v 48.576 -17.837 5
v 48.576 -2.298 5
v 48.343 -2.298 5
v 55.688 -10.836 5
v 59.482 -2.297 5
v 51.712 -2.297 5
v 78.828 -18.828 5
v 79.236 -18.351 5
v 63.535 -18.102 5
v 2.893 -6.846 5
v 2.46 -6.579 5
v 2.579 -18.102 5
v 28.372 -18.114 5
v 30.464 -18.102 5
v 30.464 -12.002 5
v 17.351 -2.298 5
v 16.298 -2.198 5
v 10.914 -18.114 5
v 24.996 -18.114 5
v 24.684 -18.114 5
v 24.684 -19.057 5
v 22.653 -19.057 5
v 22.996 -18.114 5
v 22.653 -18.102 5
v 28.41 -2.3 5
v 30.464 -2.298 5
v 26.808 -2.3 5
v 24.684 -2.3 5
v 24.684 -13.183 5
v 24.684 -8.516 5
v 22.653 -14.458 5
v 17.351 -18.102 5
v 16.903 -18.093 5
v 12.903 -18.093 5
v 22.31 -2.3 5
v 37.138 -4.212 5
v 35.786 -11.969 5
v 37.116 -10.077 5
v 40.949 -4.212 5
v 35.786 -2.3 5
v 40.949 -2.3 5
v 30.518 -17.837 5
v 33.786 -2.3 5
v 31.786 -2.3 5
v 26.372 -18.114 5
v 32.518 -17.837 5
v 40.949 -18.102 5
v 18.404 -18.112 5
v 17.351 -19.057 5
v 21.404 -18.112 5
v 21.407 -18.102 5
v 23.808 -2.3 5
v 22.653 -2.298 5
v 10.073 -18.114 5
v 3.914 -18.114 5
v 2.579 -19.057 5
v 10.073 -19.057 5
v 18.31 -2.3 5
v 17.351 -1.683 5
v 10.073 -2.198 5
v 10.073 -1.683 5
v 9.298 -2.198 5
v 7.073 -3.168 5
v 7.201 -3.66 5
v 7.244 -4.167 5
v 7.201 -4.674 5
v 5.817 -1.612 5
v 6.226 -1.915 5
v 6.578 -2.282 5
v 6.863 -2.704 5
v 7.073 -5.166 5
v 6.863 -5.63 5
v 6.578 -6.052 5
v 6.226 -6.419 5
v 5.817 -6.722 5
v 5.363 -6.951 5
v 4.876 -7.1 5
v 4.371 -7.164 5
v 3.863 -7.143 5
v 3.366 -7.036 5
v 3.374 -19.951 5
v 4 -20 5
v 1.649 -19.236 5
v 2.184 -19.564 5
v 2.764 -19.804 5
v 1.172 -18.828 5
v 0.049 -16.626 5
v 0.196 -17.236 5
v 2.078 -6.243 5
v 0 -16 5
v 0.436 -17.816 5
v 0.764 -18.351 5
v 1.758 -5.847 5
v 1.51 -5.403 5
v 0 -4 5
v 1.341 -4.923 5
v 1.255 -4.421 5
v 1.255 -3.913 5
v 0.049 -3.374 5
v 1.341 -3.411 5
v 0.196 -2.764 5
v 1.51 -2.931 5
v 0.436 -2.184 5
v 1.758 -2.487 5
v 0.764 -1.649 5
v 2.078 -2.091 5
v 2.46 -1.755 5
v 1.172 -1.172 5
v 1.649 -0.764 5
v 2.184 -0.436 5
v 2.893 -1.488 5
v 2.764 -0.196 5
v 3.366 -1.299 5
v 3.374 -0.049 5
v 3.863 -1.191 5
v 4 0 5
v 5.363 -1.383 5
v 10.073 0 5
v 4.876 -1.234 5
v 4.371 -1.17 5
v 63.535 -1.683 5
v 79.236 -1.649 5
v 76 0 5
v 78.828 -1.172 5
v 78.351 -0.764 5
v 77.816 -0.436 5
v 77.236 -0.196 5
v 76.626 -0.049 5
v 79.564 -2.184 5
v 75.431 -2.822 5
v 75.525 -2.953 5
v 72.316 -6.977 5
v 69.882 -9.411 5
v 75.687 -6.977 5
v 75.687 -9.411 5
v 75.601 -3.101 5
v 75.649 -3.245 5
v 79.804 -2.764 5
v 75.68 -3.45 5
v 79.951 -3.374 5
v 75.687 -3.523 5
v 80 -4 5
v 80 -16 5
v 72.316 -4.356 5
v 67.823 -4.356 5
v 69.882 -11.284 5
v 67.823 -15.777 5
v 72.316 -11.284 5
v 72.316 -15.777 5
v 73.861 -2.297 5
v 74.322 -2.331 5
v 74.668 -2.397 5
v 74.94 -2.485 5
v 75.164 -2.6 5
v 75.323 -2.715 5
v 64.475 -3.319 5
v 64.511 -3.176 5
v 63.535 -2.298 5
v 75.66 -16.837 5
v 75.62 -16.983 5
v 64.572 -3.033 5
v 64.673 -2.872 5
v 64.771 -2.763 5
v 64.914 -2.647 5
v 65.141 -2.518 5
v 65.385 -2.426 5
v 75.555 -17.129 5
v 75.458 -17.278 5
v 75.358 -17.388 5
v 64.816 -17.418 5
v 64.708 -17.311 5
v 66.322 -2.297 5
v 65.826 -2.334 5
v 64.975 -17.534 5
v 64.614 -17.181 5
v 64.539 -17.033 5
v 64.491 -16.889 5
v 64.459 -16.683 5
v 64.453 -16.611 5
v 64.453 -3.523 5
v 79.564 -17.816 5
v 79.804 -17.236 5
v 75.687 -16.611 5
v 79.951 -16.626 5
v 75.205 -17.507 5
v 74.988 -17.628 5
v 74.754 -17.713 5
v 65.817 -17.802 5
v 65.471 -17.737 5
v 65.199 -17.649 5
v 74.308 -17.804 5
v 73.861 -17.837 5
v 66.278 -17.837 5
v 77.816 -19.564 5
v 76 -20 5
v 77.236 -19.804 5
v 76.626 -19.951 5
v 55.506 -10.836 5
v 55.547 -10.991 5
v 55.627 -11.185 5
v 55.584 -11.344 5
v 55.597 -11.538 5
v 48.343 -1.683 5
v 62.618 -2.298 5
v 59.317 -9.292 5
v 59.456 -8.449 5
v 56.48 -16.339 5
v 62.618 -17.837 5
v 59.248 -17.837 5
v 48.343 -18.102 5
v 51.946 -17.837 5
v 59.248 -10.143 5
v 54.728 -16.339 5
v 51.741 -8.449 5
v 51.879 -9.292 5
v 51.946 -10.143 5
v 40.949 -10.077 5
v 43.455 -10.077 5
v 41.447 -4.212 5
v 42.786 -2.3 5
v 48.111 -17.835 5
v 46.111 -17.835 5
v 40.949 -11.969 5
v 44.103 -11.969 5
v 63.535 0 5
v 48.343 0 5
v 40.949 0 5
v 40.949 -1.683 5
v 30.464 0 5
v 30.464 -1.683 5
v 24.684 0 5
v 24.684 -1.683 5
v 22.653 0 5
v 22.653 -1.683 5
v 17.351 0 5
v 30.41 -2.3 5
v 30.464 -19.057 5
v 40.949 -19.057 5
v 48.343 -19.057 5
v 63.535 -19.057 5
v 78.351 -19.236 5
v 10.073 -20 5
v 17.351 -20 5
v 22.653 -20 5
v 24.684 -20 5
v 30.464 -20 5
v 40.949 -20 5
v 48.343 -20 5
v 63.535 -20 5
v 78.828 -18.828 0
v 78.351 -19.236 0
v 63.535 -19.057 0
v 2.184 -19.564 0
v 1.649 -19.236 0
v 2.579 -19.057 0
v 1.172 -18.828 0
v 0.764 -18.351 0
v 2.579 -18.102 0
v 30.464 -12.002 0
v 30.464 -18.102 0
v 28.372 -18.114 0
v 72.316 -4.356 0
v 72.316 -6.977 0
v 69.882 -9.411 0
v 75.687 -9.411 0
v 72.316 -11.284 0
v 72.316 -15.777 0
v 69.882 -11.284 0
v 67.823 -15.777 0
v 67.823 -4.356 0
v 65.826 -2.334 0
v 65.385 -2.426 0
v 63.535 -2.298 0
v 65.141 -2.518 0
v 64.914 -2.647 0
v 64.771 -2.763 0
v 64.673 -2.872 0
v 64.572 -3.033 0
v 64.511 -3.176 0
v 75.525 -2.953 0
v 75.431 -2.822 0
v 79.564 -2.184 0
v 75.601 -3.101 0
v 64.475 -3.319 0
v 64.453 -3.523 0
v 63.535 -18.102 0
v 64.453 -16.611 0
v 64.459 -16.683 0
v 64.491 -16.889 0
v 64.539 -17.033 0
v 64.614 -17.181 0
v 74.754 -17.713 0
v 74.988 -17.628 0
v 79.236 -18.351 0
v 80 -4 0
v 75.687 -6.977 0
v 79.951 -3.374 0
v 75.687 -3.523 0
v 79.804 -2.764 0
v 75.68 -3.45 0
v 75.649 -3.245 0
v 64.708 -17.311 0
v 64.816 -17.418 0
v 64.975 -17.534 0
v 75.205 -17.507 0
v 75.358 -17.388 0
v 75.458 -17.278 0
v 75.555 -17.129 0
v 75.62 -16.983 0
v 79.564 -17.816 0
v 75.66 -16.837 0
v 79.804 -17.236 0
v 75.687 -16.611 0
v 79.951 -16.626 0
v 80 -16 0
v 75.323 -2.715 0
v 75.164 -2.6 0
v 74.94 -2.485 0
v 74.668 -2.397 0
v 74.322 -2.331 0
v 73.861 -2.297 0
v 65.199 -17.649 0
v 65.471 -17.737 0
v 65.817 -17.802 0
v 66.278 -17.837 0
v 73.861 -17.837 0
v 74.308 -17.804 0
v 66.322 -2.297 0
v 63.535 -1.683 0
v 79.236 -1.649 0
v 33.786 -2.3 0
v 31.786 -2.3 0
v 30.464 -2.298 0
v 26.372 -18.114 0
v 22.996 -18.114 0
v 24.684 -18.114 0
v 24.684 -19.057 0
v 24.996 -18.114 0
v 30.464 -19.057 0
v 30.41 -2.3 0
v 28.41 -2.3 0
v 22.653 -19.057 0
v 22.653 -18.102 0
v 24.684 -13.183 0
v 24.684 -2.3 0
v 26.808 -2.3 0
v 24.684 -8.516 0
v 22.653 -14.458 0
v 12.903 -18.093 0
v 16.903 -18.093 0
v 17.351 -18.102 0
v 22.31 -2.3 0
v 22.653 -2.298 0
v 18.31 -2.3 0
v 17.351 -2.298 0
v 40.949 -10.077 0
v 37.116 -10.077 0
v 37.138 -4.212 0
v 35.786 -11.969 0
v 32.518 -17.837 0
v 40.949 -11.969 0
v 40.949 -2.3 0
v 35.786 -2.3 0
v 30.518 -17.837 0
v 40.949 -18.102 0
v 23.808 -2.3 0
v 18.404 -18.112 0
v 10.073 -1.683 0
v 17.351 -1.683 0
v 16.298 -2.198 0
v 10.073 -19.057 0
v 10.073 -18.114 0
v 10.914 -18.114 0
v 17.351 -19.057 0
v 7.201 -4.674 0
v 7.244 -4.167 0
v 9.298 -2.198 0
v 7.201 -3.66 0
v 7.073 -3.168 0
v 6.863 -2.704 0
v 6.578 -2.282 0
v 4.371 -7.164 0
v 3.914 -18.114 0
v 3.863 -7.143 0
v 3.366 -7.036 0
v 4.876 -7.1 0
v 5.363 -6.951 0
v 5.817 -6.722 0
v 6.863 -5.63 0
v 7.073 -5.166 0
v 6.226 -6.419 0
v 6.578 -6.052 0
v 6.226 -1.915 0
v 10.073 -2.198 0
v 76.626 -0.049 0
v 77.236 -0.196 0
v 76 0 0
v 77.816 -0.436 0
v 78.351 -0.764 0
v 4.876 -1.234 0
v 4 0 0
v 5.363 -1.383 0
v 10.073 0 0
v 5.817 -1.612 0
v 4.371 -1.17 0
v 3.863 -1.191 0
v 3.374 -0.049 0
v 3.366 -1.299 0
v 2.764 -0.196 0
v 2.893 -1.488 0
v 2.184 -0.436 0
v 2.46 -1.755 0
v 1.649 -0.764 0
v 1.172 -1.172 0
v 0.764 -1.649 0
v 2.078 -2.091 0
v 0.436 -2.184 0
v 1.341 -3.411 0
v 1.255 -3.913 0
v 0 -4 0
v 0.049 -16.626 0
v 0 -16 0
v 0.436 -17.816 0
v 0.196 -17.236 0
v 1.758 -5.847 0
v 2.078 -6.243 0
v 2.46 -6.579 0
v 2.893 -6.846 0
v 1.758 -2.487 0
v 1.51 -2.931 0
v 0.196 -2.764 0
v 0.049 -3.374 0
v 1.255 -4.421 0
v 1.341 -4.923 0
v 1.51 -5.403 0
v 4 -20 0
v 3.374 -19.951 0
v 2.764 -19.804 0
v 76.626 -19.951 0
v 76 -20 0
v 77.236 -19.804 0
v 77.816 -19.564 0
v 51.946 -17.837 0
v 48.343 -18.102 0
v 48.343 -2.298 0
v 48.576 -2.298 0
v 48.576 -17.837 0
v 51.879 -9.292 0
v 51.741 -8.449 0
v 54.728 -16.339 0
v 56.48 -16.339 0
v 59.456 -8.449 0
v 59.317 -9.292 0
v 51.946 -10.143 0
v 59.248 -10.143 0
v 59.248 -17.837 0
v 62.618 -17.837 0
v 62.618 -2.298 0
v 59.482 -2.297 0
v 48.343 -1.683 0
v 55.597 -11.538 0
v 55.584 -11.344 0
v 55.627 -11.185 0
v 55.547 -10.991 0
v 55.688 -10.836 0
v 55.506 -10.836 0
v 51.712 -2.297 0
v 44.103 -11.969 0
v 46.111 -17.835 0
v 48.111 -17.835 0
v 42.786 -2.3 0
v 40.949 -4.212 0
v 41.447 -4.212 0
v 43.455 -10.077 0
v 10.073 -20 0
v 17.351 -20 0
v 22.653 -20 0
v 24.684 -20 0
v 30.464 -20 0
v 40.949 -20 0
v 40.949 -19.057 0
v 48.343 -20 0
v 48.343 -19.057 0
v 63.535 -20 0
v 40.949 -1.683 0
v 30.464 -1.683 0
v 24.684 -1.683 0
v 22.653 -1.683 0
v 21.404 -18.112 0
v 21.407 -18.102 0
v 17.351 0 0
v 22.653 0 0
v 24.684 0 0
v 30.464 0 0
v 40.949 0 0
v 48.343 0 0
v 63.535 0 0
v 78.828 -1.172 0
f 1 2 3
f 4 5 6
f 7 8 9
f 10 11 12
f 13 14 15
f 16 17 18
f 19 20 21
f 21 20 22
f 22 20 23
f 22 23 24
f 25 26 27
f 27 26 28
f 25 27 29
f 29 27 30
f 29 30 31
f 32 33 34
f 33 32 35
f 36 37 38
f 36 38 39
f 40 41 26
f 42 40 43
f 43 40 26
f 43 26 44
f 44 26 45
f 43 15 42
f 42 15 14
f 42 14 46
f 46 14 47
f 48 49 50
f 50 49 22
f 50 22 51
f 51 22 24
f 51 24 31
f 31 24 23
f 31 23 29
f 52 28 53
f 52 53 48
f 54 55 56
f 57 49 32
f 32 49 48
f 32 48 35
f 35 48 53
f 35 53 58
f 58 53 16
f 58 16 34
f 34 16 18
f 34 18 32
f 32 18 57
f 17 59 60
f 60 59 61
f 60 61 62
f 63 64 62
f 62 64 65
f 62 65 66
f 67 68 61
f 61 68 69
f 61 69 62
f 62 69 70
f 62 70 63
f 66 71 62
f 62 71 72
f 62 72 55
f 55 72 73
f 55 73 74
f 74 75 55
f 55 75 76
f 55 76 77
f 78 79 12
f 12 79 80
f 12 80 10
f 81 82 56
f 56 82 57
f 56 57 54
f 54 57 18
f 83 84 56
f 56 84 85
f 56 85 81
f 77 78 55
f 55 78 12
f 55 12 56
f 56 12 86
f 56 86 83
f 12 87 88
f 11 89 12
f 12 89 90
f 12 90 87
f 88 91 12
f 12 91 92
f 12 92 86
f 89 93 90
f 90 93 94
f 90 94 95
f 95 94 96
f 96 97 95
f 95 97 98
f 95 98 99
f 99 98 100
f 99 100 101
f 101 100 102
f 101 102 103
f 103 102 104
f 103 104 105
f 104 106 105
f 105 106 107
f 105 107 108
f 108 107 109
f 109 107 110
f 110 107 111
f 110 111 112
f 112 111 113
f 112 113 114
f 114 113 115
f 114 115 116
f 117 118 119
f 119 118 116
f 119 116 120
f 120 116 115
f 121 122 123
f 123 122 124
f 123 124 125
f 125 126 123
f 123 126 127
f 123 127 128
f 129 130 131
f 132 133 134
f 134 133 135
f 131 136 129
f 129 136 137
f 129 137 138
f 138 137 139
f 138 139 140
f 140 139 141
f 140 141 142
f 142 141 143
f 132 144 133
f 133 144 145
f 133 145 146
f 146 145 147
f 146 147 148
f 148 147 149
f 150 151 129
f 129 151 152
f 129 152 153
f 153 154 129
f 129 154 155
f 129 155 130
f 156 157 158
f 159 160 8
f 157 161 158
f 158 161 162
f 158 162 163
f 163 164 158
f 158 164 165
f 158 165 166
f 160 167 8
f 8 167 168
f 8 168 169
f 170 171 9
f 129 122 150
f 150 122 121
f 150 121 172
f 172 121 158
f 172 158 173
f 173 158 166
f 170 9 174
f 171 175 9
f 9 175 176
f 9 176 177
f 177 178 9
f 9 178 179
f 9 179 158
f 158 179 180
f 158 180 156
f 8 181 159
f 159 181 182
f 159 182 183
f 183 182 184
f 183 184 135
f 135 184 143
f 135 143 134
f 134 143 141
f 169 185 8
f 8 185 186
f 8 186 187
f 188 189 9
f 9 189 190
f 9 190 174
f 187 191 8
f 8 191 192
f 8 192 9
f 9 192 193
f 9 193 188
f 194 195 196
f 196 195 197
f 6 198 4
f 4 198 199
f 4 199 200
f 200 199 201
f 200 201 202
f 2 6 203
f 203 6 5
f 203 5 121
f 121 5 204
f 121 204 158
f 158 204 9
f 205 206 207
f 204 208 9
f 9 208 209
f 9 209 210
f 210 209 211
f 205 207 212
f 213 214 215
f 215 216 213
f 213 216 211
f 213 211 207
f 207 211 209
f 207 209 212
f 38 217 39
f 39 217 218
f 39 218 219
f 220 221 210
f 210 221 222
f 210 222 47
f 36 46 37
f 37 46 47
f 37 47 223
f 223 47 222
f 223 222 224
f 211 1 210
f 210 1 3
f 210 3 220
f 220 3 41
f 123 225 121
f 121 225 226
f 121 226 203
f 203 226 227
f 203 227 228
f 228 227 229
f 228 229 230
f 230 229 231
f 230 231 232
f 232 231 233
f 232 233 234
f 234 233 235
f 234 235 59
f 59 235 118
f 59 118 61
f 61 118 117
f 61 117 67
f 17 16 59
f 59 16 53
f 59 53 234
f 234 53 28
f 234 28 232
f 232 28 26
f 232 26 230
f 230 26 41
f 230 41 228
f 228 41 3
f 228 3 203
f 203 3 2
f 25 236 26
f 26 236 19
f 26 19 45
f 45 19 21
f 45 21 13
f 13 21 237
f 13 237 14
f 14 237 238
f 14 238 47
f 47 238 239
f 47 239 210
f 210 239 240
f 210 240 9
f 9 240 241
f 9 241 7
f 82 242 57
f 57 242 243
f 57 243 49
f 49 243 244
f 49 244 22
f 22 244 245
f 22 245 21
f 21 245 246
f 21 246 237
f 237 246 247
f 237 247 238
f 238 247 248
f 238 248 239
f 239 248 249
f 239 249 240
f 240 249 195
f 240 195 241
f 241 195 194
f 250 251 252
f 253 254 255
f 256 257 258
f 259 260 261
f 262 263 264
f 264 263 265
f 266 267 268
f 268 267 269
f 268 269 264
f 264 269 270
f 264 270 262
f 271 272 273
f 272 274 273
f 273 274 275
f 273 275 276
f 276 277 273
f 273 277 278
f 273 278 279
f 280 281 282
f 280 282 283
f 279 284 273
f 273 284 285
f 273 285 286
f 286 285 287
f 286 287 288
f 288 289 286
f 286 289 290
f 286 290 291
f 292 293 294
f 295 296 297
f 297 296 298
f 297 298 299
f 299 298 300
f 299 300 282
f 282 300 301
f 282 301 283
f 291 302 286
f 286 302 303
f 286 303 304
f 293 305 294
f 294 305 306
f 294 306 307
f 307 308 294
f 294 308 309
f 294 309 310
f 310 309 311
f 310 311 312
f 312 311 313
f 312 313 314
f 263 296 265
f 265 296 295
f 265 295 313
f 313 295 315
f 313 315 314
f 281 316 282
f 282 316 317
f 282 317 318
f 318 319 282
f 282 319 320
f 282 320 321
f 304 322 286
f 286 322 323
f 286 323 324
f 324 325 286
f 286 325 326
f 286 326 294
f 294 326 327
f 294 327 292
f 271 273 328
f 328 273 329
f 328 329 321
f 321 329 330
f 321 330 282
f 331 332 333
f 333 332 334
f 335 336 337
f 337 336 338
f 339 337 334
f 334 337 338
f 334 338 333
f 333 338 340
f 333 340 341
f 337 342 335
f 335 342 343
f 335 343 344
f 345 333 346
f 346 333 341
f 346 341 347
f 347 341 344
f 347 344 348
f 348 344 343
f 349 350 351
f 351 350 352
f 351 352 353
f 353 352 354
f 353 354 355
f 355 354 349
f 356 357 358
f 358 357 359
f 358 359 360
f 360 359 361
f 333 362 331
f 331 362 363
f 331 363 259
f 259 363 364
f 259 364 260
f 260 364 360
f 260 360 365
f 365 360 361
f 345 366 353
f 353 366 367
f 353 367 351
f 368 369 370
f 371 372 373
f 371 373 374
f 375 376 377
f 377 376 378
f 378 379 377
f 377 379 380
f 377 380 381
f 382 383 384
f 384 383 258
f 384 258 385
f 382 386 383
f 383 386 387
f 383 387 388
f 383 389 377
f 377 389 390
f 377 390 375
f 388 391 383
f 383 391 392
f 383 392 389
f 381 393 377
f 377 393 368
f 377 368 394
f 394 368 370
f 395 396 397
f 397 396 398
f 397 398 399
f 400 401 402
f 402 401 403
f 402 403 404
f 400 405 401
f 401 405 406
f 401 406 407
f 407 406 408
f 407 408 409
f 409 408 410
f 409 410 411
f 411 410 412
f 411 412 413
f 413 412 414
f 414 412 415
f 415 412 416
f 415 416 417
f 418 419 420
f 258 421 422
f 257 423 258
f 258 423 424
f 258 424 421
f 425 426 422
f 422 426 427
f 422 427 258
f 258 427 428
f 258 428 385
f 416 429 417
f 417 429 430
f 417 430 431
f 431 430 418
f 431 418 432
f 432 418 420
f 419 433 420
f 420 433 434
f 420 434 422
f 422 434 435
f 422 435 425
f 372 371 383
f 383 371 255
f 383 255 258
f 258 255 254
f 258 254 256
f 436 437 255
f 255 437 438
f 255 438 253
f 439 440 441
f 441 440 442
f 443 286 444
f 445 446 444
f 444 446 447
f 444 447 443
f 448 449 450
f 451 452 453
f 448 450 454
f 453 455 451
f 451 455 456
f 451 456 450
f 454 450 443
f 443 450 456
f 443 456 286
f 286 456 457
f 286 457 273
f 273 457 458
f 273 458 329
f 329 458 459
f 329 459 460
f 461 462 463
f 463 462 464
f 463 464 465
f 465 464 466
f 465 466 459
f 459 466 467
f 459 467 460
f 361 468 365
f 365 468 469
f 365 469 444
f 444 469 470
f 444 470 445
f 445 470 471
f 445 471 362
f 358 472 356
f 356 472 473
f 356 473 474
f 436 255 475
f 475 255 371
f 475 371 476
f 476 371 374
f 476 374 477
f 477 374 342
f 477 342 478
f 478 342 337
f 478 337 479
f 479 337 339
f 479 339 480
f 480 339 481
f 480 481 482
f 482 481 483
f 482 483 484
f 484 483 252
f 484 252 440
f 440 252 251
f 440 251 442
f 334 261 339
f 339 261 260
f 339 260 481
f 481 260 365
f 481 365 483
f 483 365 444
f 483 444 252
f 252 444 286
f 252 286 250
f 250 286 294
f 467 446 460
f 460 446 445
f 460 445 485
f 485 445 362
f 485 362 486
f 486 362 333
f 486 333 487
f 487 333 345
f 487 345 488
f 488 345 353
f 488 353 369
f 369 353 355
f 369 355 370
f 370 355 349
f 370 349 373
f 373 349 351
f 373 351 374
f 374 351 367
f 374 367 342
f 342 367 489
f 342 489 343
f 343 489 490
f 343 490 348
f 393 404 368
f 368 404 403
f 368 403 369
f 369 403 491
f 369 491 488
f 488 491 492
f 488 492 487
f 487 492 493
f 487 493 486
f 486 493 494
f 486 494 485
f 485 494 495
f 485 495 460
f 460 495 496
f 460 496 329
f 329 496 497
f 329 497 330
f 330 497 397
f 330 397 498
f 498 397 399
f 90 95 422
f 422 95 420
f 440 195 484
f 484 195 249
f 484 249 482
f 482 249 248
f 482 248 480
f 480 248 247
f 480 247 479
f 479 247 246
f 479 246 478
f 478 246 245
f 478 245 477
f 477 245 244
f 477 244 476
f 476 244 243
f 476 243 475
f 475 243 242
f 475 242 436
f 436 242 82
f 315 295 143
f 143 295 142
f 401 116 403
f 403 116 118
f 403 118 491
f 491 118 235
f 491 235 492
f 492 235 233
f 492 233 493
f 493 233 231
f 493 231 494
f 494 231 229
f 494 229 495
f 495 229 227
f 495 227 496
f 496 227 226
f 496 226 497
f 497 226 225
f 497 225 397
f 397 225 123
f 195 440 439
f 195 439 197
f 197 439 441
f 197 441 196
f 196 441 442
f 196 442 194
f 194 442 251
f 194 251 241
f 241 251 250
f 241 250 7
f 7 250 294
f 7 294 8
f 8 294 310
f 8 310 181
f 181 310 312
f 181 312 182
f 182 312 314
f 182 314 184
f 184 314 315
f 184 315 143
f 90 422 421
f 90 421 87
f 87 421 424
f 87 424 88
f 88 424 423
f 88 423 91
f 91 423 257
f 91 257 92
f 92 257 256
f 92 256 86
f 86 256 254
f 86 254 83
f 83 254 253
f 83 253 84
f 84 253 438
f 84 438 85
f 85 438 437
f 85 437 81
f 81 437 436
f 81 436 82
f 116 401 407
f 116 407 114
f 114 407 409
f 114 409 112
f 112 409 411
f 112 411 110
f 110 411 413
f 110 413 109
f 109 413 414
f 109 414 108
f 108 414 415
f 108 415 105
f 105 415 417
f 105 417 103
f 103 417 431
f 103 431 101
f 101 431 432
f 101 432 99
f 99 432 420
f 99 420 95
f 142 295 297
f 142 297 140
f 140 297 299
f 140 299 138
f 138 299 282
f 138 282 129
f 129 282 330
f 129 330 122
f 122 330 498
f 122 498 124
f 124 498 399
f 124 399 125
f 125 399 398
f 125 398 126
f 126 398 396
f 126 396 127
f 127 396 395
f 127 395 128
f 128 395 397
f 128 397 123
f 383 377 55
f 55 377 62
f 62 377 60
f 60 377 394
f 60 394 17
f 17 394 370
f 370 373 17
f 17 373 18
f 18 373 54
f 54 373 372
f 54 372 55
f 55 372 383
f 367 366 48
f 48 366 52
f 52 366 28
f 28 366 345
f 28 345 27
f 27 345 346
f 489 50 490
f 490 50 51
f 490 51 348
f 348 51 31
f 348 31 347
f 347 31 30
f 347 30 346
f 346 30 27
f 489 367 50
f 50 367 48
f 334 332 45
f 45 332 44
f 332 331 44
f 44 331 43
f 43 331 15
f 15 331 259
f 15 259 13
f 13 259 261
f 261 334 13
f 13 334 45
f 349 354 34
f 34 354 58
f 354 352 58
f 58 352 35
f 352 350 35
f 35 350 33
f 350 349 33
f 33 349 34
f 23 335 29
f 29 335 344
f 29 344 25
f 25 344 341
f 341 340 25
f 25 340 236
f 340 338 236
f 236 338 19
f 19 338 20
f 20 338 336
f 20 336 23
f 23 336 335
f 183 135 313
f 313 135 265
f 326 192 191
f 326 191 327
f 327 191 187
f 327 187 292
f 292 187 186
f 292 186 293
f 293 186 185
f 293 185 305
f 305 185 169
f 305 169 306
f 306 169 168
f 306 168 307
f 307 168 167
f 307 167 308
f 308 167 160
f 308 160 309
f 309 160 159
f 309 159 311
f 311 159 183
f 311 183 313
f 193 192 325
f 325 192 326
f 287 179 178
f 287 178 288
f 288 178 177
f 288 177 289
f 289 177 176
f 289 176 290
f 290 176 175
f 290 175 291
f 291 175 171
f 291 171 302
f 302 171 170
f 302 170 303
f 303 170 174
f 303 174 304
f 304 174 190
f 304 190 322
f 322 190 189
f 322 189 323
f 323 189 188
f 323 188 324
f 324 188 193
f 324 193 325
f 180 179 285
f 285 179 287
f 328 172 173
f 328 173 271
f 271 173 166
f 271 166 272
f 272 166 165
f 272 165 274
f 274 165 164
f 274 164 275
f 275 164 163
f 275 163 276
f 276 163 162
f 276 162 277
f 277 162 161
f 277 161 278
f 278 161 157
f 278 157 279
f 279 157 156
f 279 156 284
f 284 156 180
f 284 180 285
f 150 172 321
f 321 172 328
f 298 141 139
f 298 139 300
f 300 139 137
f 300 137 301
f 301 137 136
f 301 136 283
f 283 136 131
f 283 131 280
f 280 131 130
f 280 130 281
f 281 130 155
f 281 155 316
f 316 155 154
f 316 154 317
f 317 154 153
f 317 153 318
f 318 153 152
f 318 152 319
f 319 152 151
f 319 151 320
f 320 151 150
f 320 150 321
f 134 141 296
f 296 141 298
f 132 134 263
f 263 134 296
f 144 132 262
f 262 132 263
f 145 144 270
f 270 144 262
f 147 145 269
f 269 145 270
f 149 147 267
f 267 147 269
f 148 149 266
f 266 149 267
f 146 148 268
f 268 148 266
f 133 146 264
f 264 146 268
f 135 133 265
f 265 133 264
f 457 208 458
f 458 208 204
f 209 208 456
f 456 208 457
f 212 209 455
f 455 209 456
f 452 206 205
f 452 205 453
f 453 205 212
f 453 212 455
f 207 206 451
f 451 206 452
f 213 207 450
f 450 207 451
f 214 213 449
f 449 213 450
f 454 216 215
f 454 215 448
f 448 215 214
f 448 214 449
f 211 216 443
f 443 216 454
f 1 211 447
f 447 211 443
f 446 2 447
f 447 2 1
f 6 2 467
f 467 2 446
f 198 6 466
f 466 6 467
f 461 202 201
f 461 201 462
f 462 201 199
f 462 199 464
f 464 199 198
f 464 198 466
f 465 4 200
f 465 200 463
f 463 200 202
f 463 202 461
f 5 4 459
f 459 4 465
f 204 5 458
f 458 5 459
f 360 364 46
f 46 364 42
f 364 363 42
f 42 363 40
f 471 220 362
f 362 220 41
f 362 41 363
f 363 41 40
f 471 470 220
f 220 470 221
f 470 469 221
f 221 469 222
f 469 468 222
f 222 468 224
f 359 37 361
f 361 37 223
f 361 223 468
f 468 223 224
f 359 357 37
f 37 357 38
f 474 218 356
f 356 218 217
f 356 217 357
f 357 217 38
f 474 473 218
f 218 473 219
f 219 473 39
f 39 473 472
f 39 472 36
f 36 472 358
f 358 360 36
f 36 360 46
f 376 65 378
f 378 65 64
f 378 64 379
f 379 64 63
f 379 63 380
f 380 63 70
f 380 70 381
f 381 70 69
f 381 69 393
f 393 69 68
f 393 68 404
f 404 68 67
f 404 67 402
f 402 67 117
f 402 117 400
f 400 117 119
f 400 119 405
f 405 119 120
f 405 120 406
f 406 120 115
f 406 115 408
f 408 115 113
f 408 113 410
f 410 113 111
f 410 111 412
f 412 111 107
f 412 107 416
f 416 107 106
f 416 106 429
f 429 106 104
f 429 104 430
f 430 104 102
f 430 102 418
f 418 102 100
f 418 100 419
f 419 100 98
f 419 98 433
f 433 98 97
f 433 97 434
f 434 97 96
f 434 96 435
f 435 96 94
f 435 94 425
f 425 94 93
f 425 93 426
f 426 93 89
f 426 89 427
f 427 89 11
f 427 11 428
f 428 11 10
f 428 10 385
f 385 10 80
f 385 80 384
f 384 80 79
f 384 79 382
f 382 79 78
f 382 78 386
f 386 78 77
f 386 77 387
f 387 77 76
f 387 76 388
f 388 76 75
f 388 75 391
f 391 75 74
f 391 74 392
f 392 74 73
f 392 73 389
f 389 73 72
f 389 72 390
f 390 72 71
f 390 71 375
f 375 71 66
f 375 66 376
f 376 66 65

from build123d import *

# Parameters (mm, degrees)
ESQUISSE1_W                  = 80
ESQUISSE1_H                  = 20
BOSS_EXTRU_1_DEPTH           = 5
CONG_1_R                     = 4
ENL_V_MAT_EXTRU_1_DEPTH      = 83.613558209
ENL_V_START                  = -5
ENL_V_MAT_EXTRU_2_DEPTH      = 5
ESQUISSE11_W                 = 13.611032385
ESQUISSE11_H                 = 17.64061434
BOSS_EXTRU_8_DEPTH           = 5
ENL_V_MAT_EXTRU_3_DEPTH      = 83.613558336
ENL_V_MAT_EXTRU_3_DEPTH_BACK = 83.613558336
ESQUISSE13_R                 = 3
ENL_V_MAT_EXTRU_4_DEPTH      = 33


# Read off the part's stored shape, not the designer's step: Enlèv. mat.-Extru.2
with BuildPart() as part:
    # Esquisse1 → Boss.-Extru.1 (new body)
    with BuildSketch(Plane.XY):
        with Locations((40, -10)):
            Rectangle(ESQUISSE1_W, ESQUISSE1_H)
    extrude(amount=BOSS_EXTRU_1_DEPTH)

    # Congé1
    cong_1_edges = [part.edges().sort_by_distance(p)[0] for p in [
        (0, 0, 2.5),
        (80, 0, 2.5),
        (80, -20, 2.5),
        (0, -20, 2.5),
    ]]
    fillet(cong_1_edges, radius=CONG_1_R)

    # Esquisse2 → Enlèv. mat.-Extru.1 (cut, through all)
    with BuildSketch(Plane.XY.offset(5)):
        Polygon((28.410040172, -2.300084773), (30.410040172, -2.300084773), (24.995829866, -18.113699025), (22.995829866, -18.113699025), align=None)
        Polygon((9.298142424, -2.198086037), (16.298142424, -2.198086037), (10.914062948, -18.113699025), (3.914062948, -18.113699025), align=None)
        Polygon((18.309829725, -2.300084773), (22.309829725, -2.300084773), (16.902589817, -18.093340154), (12.902589817, -18.093340154), align=None)
        Polygon((23.808061727, -2.300084773), (26.808061727, -2.300084773), (21.404325417, -18.111661936), (18.404325417, -18.111661936), align=None)
        Polygon((31.786127586, -2.300084773), (33.786127586, -2.300084773), (28.371917279, -18.113699025), (26.371917279, -18.113699025), align=None)
    extrude(amount=-ENL_V_MAT_EXTRU_1_DEPTH, mode=Mode.SUBTRACT)

    # Enlèv. mat.-Extru.2 outline → Enlèv. mat.-Extru.2 (cut)
    # profile 1 of 3: a face of its own
    with BuildSketch(Plane.XY.offset(5).offset(ENL_V_START)):
        with BuildLine():
            add(Edge.make_bspline(
                [(75.686567024, -16.611023442), (75.678643784, -16.704663886), (75.663447013, -16.884266233), (75.563839443, -17.132408637), (75.415616385, -17.347383223), (75.204262037, -17.518269705), (74.945020643, -17.657920052), (74.629763147, -17.753299102), (74.263391467, -17.817731699), (74.000846179, -17.830167685), (73.861085096, -17.83678775)],
                knots=[0, 0, 0, 0, 0.114098337, 0.218840581, 0.322174175, 0.429434412, 0.547100708, 0.679564678, 0.829422238, 1, 1, 1, 1], degree=3))
            Line((75.686567024, -16.611023442), (75.686567024, -9.411486545))
            Line((75.686567024, -9.411486545), (69.882470639, -9.411486545))
            Line((69.882470639, -9.411486545), (69.882470639, -11.283775701))
            Line((69.882470639, -11.283775701), (72.316446542, -11.283775701))
            Line((72.316446542, -11.283775701), (72.316446542, -15.777269677))
            Line((72.316446542, -15.777269677), (67.822952566, -15.777269677))
            Line((67.822952566, -15.777269677), (67.822952566, -4.356305822))
            Line((67.822952566, -4.356305822), (72.316446542, -4.356305822))
            Line((72.316446542, -4.356305822), (72.316446542, -6.977510641))
            Line((72.316446542, -6.977510641), (75.686567024, -6.977510641))
            Line((75.686567024, -6.977510641), (75.686567024, -3.522552057))
            add(Edge.make_bspline(
                [(73.861085096, -2.29678775), (74.000846179, -2.303407815), (74.263391467, -2.3158438), (74.629763147, -2.380276397), (74.945020643, -2.475655447), (75.204262037, -2.615305794), (75.415616385, -2.786192276), (75.563839443, -3.001166862), (75.663447013, -3.249309266), (75.678643784, -3.428911613), (75.686567024, -3.522552057)],
                knots=[0, 0, 0, 0, 0.170577762, 0.320435322, 0.452899292, 0.570565588, 0.677825825, 0.781159419, 0.885901663, 1, 1, 1, 1], degree=3))
            Line((73.861085096, -2.29678775), (66.322195789, -2.29678775))
            add(Edge.make_bspline(
                [(64.452832084, -3.522552057), (64.460490101, -3.428813179), (64.475207603, -3.248661832), (64.578900626, -3.001012416), (64.72992953, -2.785012839), (64.947387079, -2.615412784), (65.212124175, -2.475706721), (65.534969931, -2.379572165), (65.910264022, -2.316247539), (66.179534857, -2.303527098), (66.322195789, -2.29678775)],
                knots=[0, 0, 0, 0, 0.112348161, 0.215915455, 0.318343111, 0.425762474, 0.543690884, 0.676356302, 0.828532073, 1, 1, 1, 1], degree=3))
            Line((64.452832084, -3.522552057), (64.452832084, -16.611023442))
            add(Edge.make_bspline(
                [(66.278314012, -17.83678775), (66.138552929, -17.830167685), (65.876007642, -17.817731699), (65.509635961, -17.753299102), (65.194378466, -17.657920052), (64.935137072, -17.518269705), (64.723782723, -17.347383223), (64.575559665, -17.132408637), (64.475952096, -16.884266233), (64.460755324, -16.704663886), (64.452832084, -16.611023442)],
                knots=[0, 0, 0, 0, 0.170577762, 0.320435322, 0.452899292, 0.570565588, 0.677825825, 0.781159419, 0.885901663, 1, 1, 1, 1], degree=3))
            Line((66.278314012, -17.83678775), (73.861085096, -17.83678775))
        make_face()
    # profile 2 of 3: a face of its own
    with BuildSketch(Plane.XY.offset(5).offset(ENL_V_START)):
        with BuildLine():
            add(Edge.make_bspline(
                [(59.247868229, -10.142849497), (59.250113416, -10.031576234), (59.255029992, -9.787906808), (59.301768342, -9.394005261), (59.364432817, -8.9400039), (59.423938248, -8.619443962), (59.455575307, -8.4490129)],
                knots=[0, 0, 0, 0, 0.195301478, 0.427676852, 0.695714808, 1, 1, 1, 1], degree=3))
            Line((59.247868229, -10.142849497), (59.247868229, -17.83678775))
            Line((59.247868229, -17.83678775), (62.617988711, -17.83678775))
            Line((62.617988711, -17.83678775), (62.617988711, -2.29678775))
            Line((62.617988711, -2.29678775), (59.481904374, -2.29678775))
            Line((59.481904374, -2.29678775), (55.68759338, -10.836181575))
            add(Edge.make_bspline(
                [(55.596904374, -11.538290009), (55.59815665, -11.492405908), (55.600881716, -11.392557927), (55.62162629, -11.229918497), (55.645376833, -11.040932864), (55.672949182, -10.907206292), (55.68759338, -10.836181575)],
                knots=[0, 0, 0, 0, 0.19413449, 0.422454333, 0.693254547, 1, 1, 1, 1], degree=3))
            add(Edge.make_bspline(
                [(55.506215368, -10.836181575), (55.516865461, -10.868148772), (55.54346006, -10.947974815), (55.561126156, -11.099283482), (55.582536457, -11.300899182), (55.59176432, -11.45336457), (55.596904374, -11.538290009)],
                knots=[0, 0, 0, 0, 0.142095852, 0.354830918, 0.640631437, 1, 1, 1, 1], degree=3))
            Line((55.506215368, -10.836181575), (51.711904374, -2.29678775))
            Line((51.711904374, -2.29678775), (48.575820036, -2.29678775))
            Line((48.575820036, -2.29678775), (48.575820036, -17.83678775))
            Line((48.575820036, -17.83678775), (51.945940518, -17.83678775))
            Line((51.945940518, -17.83678775), (51.945940518, -10.142849497))
            add(Edge.make_bspline(
                [(51.741158892, -8.4490129), (51.77262663, -8.62239324), (51.831532725, -8.946952903), (51.895555168, -9.402629403), (51.938009232, -9.793916754), (51.94345609, -10.033548389), (51.945940518, -10.142849497)],
                knots=[0, 0, 0, 0, 0.309420385, 0.579220093, 0.808073296, 1, 1, 1, 1], degree=3))
            Line((51.741158892, -8.4490129), (54.728045187, -16.338956424))
            Line((54.728045187, -16.338956424), (56.480390819, -16.338956424))
            Line((56.480390819, -16.338956424), (59.455575307, -8.4490129))
        make_face()
    # profile 3 of 3: a face of its own
    with BuildSketch(Plane.XY.offset(5).offset(ENL_V_START)):
        Polygon((44.119771843, -17.83678775), (47.489892325, -17.83678775), (43.019801964, -2.29678775), (39.439048952, -2.29678775), (34.945554976, -17.795831424), (34.945554976, -17.83678775), (38.315675458, -17.83678775), (39.023634795, -15.028354015), (43.41766341, -15.028354015), align=None)
        Polygon((41.217723651, -5.921422539), (42.923262054, -12.968835942), (39.488781633, -12.968835942), align=None, mode=Mode.SUBTRACT)
    extrude(amount=ENL_V_MAT_EXTRU_2_DEPTH, mode=Mode.SUBTRACT)

    # Esquisse11 → Boss.-Extru.8 (add)
    with BuildSketch(Plane.XY.offset(5)):
        with Locations((41.097921838, -10.121676789)):
            Rectangle(ESQUISSE11_W, ESQUISSE11_H)
    extrude(amount=-BOSS_EXTRU_8_DEPTH)

    # Esquisse12 → Enlèv. mat.-Extru.3 (cut, two sides: drawn at the far end of the back side and taken through both)
    with BuildSketch(Plane.XY.offset(5).offset(-ENL_V_MAT_EXTRU_3_DEPTH_BACK)):
        Polygon((35.786127586, -2.300084773), (42.786127586, -2.300084773), (48.111179633, -17.834694794), (46.111179633, -17.834694794), (44.102998893, -11.969278829), (35.786127586, -11.969278829), (37.115967439, -10.077108111), (43.455164056, -10.077108111), (41.446983316, -4.211692145), (37.138004335, -4.211692145), (32.518467193, -17.83678775), (30.518467193, -17.83678775), align=None)
    extrude(amount=ENL_V_MAT_EXTRU_3_DEPTH + ENL_V_MAT_EXTRU_3_DEPTH_BACK, mode=Mode.SUBTRACT)

    # Esquisse13 → Enlèv. mat.-Extru.4 (cut)
    with BuildSketch(Plane.XY.offset(5)):
        with Locations((4.24401363, -4.167068495)):
            Circle(ESQUISSE13_R)
    extrude(amount=-ENL_V_MAT_EXTRU_4_DEPTH, mode=Mode.SUBTRACT)


solid = part.part
